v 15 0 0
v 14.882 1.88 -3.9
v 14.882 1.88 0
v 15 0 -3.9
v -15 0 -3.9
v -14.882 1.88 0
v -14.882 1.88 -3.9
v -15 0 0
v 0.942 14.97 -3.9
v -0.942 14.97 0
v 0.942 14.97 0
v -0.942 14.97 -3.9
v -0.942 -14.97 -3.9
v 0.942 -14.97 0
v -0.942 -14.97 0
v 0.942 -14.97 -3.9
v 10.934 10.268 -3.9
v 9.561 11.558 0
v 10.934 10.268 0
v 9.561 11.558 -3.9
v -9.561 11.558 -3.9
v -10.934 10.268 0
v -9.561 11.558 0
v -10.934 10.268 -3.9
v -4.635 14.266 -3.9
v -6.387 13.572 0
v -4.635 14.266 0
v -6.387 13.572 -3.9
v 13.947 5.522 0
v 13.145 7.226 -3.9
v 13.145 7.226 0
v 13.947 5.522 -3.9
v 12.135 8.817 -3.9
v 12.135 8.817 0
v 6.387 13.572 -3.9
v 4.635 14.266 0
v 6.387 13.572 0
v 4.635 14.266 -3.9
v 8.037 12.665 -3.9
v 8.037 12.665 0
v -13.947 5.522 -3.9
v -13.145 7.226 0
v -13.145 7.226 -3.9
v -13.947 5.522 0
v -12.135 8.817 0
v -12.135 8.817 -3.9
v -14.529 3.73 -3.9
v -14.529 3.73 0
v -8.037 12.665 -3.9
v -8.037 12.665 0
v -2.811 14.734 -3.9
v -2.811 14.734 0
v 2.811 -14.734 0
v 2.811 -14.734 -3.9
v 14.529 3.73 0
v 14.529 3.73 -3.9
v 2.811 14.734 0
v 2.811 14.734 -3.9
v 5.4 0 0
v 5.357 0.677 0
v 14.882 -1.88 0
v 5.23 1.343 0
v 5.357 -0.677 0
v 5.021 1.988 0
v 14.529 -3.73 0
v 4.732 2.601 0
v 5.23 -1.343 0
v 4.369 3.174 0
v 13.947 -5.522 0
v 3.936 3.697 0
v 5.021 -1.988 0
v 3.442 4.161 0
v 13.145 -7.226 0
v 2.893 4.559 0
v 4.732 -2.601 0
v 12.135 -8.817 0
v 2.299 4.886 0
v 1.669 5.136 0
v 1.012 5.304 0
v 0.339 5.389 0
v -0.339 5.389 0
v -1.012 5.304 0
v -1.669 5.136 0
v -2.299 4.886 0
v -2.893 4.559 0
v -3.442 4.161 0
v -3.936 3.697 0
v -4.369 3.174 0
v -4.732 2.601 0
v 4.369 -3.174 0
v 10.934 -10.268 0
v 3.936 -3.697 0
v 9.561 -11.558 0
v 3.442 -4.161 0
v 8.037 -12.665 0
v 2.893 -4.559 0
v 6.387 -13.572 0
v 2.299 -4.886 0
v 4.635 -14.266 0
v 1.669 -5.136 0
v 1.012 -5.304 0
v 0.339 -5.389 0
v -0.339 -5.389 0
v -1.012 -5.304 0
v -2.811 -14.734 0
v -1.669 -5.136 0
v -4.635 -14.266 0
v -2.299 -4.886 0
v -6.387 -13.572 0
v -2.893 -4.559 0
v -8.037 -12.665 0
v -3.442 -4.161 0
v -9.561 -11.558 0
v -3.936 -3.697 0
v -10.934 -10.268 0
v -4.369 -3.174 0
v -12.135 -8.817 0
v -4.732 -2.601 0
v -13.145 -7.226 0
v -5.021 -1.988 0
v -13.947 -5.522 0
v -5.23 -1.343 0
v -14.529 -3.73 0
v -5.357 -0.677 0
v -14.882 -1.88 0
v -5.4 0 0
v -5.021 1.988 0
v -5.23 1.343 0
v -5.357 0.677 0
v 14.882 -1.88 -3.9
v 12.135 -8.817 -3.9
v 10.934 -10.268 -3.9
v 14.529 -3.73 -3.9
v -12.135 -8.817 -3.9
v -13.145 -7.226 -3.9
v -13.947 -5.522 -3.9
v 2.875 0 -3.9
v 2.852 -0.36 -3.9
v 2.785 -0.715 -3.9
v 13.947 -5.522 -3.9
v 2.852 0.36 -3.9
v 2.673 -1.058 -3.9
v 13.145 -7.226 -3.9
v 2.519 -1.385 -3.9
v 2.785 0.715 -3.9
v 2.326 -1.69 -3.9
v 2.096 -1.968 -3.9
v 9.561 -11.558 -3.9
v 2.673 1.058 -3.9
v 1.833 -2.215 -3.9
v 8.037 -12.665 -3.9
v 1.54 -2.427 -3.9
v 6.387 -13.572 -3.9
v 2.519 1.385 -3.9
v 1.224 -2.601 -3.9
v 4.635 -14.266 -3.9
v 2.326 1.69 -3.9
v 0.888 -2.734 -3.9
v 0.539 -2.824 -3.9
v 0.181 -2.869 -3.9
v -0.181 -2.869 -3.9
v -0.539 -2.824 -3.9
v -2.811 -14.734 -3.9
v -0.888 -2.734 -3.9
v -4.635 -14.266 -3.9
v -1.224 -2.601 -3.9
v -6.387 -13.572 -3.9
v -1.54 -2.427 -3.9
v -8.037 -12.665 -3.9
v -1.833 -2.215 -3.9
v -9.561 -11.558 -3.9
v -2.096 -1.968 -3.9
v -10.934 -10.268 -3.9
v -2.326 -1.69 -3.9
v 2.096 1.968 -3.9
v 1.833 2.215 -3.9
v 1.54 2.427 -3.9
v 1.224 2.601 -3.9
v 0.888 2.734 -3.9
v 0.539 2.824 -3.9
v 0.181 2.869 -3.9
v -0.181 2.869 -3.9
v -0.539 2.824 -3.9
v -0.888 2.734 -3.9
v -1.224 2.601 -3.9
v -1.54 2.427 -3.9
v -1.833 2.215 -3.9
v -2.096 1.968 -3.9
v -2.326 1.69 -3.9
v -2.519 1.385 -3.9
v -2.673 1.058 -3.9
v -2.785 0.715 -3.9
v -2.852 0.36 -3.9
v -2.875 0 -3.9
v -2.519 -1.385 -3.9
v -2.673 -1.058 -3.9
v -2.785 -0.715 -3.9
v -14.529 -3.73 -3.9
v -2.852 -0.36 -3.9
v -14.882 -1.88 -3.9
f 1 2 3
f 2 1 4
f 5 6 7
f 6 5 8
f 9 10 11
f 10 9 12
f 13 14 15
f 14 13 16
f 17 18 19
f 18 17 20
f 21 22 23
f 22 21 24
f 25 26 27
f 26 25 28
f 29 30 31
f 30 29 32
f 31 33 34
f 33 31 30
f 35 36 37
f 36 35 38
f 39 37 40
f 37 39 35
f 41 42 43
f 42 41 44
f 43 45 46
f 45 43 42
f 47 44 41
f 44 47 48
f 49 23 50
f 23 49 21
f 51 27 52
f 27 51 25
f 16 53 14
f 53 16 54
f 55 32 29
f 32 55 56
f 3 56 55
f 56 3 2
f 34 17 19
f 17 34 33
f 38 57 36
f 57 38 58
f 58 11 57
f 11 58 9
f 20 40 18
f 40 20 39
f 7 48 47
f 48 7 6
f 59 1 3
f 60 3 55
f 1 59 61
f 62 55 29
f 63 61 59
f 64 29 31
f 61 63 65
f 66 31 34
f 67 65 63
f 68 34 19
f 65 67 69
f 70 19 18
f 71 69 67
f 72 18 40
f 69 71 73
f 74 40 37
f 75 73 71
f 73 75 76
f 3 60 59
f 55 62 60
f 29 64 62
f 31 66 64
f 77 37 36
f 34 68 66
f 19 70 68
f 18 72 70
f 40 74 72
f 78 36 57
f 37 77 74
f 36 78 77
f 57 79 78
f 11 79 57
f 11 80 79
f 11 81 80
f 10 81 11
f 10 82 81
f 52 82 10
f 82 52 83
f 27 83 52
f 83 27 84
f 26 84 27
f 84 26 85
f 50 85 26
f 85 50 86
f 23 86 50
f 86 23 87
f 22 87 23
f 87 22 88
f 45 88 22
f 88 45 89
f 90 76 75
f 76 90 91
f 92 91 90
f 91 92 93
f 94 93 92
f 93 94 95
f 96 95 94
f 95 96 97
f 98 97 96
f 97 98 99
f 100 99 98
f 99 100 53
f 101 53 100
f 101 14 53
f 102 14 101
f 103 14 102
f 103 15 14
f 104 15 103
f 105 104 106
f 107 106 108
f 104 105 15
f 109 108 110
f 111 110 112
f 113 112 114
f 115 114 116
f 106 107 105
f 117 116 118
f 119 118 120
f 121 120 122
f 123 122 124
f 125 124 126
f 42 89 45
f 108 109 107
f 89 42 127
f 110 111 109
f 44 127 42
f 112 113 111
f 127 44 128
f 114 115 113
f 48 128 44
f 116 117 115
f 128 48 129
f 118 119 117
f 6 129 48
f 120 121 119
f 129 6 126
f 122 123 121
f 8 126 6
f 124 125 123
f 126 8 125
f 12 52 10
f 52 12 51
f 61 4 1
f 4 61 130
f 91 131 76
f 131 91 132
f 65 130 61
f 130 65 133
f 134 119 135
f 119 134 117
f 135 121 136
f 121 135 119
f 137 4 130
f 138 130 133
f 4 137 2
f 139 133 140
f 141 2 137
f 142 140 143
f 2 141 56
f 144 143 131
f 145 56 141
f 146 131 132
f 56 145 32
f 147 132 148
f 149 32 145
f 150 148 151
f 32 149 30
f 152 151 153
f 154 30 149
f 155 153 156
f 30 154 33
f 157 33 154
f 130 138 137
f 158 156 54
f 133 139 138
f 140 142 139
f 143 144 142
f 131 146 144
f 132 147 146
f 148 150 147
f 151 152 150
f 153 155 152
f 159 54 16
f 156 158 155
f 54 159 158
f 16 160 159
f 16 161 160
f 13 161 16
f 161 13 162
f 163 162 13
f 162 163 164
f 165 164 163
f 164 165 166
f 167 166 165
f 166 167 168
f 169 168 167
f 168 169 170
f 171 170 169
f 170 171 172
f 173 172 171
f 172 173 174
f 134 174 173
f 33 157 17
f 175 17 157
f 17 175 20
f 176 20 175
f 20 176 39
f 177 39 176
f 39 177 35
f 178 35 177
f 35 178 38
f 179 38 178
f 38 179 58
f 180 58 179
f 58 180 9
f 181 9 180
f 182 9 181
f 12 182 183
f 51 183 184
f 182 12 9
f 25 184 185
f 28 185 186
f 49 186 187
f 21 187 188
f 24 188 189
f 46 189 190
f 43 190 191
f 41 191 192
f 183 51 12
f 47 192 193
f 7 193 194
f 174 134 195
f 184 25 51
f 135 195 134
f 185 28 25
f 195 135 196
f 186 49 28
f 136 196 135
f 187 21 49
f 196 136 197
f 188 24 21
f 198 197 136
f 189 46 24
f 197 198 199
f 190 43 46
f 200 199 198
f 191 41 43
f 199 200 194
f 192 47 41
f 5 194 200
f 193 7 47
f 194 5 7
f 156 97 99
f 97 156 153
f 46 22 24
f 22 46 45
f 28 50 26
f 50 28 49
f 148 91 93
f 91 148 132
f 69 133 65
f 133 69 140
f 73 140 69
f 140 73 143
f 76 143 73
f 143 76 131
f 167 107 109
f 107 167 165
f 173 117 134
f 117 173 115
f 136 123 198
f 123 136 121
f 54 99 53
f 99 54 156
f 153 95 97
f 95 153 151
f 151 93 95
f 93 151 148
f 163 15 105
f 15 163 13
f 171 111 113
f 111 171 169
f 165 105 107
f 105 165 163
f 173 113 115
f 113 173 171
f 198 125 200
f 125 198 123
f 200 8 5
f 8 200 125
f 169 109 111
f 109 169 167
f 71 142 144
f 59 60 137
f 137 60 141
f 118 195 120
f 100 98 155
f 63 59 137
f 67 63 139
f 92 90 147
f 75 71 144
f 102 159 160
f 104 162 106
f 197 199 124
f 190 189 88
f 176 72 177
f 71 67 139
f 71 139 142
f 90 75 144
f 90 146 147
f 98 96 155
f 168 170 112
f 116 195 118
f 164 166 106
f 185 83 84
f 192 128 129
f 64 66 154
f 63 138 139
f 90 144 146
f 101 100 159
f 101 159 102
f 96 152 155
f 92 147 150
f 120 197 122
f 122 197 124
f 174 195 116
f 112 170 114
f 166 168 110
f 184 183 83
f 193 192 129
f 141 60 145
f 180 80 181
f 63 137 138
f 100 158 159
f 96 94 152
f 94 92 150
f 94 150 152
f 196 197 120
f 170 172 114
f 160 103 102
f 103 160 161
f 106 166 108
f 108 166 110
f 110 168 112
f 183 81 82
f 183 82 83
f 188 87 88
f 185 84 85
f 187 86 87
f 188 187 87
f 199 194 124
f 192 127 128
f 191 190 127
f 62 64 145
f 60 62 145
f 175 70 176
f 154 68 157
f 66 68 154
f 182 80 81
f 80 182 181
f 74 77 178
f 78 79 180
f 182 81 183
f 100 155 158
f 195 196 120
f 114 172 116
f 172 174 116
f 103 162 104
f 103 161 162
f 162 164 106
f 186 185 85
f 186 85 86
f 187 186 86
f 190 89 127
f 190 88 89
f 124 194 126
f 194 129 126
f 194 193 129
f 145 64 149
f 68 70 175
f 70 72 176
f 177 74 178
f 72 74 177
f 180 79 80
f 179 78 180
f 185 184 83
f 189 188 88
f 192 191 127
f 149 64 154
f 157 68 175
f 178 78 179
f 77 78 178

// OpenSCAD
$fn = 50;


difference() {
	union() {
		translate(v = [0, 0, -3.9000000000]) {
			cylinder(h = 3.9000000000, r = 15.0000000000);
		}
		#translate(v = [0, 0, -6.9000000000]) {
			cylinder(h = 6.9000000000, r = 2.8750000000);
		}
	}
	union() {
		translate(v = [0, 0, 0]) {
			rotate(a = [0, 0, 0]) {
				difference() {
					union() {
						translate(v = [0, 0, -6.9000000000]) {
							cylinder(h = 6.9000000000, r = 2.6000000000);
						}
						translate(v = [0, 0, -3.9000000000]) {
							cylinder(h = 3.9000000000, r1 = 2.8750000000, r2 = 5.4000000000);
						}
						translate(v = [0, 0, -6.9000000000]) {
							cylinder(h = 6.9000000000, r = 2.8750000000);
						}
						translate(v = [0, 0, -6.9000000000]) {
							cylinder(h = 6.9000000000, r = 2.6000000000);
						}
					}
					union();
				}
			}
		}
	}
}
